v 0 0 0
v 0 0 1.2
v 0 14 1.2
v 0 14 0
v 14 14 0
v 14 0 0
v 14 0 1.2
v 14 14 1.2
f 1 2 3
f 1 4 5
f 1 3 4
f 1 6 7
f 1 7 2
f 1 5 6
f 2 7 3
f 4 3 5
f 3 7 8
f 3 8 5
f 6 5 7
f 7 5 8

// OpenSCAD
/* Warning, this is a very basic generator with a lot of approximation 
input data : [TFBGA, HGB, 14x14x1.2mm, 228, , A, C04-21551A]
generated by com.zoubworld.electronics.cad.model3d.Basic
Date : Sun Feb 15 10:50:49 CET 2026
*/

//body
color("black")
translate([0,0,0])
cube([14.0,14.0,1.2], center=false);
